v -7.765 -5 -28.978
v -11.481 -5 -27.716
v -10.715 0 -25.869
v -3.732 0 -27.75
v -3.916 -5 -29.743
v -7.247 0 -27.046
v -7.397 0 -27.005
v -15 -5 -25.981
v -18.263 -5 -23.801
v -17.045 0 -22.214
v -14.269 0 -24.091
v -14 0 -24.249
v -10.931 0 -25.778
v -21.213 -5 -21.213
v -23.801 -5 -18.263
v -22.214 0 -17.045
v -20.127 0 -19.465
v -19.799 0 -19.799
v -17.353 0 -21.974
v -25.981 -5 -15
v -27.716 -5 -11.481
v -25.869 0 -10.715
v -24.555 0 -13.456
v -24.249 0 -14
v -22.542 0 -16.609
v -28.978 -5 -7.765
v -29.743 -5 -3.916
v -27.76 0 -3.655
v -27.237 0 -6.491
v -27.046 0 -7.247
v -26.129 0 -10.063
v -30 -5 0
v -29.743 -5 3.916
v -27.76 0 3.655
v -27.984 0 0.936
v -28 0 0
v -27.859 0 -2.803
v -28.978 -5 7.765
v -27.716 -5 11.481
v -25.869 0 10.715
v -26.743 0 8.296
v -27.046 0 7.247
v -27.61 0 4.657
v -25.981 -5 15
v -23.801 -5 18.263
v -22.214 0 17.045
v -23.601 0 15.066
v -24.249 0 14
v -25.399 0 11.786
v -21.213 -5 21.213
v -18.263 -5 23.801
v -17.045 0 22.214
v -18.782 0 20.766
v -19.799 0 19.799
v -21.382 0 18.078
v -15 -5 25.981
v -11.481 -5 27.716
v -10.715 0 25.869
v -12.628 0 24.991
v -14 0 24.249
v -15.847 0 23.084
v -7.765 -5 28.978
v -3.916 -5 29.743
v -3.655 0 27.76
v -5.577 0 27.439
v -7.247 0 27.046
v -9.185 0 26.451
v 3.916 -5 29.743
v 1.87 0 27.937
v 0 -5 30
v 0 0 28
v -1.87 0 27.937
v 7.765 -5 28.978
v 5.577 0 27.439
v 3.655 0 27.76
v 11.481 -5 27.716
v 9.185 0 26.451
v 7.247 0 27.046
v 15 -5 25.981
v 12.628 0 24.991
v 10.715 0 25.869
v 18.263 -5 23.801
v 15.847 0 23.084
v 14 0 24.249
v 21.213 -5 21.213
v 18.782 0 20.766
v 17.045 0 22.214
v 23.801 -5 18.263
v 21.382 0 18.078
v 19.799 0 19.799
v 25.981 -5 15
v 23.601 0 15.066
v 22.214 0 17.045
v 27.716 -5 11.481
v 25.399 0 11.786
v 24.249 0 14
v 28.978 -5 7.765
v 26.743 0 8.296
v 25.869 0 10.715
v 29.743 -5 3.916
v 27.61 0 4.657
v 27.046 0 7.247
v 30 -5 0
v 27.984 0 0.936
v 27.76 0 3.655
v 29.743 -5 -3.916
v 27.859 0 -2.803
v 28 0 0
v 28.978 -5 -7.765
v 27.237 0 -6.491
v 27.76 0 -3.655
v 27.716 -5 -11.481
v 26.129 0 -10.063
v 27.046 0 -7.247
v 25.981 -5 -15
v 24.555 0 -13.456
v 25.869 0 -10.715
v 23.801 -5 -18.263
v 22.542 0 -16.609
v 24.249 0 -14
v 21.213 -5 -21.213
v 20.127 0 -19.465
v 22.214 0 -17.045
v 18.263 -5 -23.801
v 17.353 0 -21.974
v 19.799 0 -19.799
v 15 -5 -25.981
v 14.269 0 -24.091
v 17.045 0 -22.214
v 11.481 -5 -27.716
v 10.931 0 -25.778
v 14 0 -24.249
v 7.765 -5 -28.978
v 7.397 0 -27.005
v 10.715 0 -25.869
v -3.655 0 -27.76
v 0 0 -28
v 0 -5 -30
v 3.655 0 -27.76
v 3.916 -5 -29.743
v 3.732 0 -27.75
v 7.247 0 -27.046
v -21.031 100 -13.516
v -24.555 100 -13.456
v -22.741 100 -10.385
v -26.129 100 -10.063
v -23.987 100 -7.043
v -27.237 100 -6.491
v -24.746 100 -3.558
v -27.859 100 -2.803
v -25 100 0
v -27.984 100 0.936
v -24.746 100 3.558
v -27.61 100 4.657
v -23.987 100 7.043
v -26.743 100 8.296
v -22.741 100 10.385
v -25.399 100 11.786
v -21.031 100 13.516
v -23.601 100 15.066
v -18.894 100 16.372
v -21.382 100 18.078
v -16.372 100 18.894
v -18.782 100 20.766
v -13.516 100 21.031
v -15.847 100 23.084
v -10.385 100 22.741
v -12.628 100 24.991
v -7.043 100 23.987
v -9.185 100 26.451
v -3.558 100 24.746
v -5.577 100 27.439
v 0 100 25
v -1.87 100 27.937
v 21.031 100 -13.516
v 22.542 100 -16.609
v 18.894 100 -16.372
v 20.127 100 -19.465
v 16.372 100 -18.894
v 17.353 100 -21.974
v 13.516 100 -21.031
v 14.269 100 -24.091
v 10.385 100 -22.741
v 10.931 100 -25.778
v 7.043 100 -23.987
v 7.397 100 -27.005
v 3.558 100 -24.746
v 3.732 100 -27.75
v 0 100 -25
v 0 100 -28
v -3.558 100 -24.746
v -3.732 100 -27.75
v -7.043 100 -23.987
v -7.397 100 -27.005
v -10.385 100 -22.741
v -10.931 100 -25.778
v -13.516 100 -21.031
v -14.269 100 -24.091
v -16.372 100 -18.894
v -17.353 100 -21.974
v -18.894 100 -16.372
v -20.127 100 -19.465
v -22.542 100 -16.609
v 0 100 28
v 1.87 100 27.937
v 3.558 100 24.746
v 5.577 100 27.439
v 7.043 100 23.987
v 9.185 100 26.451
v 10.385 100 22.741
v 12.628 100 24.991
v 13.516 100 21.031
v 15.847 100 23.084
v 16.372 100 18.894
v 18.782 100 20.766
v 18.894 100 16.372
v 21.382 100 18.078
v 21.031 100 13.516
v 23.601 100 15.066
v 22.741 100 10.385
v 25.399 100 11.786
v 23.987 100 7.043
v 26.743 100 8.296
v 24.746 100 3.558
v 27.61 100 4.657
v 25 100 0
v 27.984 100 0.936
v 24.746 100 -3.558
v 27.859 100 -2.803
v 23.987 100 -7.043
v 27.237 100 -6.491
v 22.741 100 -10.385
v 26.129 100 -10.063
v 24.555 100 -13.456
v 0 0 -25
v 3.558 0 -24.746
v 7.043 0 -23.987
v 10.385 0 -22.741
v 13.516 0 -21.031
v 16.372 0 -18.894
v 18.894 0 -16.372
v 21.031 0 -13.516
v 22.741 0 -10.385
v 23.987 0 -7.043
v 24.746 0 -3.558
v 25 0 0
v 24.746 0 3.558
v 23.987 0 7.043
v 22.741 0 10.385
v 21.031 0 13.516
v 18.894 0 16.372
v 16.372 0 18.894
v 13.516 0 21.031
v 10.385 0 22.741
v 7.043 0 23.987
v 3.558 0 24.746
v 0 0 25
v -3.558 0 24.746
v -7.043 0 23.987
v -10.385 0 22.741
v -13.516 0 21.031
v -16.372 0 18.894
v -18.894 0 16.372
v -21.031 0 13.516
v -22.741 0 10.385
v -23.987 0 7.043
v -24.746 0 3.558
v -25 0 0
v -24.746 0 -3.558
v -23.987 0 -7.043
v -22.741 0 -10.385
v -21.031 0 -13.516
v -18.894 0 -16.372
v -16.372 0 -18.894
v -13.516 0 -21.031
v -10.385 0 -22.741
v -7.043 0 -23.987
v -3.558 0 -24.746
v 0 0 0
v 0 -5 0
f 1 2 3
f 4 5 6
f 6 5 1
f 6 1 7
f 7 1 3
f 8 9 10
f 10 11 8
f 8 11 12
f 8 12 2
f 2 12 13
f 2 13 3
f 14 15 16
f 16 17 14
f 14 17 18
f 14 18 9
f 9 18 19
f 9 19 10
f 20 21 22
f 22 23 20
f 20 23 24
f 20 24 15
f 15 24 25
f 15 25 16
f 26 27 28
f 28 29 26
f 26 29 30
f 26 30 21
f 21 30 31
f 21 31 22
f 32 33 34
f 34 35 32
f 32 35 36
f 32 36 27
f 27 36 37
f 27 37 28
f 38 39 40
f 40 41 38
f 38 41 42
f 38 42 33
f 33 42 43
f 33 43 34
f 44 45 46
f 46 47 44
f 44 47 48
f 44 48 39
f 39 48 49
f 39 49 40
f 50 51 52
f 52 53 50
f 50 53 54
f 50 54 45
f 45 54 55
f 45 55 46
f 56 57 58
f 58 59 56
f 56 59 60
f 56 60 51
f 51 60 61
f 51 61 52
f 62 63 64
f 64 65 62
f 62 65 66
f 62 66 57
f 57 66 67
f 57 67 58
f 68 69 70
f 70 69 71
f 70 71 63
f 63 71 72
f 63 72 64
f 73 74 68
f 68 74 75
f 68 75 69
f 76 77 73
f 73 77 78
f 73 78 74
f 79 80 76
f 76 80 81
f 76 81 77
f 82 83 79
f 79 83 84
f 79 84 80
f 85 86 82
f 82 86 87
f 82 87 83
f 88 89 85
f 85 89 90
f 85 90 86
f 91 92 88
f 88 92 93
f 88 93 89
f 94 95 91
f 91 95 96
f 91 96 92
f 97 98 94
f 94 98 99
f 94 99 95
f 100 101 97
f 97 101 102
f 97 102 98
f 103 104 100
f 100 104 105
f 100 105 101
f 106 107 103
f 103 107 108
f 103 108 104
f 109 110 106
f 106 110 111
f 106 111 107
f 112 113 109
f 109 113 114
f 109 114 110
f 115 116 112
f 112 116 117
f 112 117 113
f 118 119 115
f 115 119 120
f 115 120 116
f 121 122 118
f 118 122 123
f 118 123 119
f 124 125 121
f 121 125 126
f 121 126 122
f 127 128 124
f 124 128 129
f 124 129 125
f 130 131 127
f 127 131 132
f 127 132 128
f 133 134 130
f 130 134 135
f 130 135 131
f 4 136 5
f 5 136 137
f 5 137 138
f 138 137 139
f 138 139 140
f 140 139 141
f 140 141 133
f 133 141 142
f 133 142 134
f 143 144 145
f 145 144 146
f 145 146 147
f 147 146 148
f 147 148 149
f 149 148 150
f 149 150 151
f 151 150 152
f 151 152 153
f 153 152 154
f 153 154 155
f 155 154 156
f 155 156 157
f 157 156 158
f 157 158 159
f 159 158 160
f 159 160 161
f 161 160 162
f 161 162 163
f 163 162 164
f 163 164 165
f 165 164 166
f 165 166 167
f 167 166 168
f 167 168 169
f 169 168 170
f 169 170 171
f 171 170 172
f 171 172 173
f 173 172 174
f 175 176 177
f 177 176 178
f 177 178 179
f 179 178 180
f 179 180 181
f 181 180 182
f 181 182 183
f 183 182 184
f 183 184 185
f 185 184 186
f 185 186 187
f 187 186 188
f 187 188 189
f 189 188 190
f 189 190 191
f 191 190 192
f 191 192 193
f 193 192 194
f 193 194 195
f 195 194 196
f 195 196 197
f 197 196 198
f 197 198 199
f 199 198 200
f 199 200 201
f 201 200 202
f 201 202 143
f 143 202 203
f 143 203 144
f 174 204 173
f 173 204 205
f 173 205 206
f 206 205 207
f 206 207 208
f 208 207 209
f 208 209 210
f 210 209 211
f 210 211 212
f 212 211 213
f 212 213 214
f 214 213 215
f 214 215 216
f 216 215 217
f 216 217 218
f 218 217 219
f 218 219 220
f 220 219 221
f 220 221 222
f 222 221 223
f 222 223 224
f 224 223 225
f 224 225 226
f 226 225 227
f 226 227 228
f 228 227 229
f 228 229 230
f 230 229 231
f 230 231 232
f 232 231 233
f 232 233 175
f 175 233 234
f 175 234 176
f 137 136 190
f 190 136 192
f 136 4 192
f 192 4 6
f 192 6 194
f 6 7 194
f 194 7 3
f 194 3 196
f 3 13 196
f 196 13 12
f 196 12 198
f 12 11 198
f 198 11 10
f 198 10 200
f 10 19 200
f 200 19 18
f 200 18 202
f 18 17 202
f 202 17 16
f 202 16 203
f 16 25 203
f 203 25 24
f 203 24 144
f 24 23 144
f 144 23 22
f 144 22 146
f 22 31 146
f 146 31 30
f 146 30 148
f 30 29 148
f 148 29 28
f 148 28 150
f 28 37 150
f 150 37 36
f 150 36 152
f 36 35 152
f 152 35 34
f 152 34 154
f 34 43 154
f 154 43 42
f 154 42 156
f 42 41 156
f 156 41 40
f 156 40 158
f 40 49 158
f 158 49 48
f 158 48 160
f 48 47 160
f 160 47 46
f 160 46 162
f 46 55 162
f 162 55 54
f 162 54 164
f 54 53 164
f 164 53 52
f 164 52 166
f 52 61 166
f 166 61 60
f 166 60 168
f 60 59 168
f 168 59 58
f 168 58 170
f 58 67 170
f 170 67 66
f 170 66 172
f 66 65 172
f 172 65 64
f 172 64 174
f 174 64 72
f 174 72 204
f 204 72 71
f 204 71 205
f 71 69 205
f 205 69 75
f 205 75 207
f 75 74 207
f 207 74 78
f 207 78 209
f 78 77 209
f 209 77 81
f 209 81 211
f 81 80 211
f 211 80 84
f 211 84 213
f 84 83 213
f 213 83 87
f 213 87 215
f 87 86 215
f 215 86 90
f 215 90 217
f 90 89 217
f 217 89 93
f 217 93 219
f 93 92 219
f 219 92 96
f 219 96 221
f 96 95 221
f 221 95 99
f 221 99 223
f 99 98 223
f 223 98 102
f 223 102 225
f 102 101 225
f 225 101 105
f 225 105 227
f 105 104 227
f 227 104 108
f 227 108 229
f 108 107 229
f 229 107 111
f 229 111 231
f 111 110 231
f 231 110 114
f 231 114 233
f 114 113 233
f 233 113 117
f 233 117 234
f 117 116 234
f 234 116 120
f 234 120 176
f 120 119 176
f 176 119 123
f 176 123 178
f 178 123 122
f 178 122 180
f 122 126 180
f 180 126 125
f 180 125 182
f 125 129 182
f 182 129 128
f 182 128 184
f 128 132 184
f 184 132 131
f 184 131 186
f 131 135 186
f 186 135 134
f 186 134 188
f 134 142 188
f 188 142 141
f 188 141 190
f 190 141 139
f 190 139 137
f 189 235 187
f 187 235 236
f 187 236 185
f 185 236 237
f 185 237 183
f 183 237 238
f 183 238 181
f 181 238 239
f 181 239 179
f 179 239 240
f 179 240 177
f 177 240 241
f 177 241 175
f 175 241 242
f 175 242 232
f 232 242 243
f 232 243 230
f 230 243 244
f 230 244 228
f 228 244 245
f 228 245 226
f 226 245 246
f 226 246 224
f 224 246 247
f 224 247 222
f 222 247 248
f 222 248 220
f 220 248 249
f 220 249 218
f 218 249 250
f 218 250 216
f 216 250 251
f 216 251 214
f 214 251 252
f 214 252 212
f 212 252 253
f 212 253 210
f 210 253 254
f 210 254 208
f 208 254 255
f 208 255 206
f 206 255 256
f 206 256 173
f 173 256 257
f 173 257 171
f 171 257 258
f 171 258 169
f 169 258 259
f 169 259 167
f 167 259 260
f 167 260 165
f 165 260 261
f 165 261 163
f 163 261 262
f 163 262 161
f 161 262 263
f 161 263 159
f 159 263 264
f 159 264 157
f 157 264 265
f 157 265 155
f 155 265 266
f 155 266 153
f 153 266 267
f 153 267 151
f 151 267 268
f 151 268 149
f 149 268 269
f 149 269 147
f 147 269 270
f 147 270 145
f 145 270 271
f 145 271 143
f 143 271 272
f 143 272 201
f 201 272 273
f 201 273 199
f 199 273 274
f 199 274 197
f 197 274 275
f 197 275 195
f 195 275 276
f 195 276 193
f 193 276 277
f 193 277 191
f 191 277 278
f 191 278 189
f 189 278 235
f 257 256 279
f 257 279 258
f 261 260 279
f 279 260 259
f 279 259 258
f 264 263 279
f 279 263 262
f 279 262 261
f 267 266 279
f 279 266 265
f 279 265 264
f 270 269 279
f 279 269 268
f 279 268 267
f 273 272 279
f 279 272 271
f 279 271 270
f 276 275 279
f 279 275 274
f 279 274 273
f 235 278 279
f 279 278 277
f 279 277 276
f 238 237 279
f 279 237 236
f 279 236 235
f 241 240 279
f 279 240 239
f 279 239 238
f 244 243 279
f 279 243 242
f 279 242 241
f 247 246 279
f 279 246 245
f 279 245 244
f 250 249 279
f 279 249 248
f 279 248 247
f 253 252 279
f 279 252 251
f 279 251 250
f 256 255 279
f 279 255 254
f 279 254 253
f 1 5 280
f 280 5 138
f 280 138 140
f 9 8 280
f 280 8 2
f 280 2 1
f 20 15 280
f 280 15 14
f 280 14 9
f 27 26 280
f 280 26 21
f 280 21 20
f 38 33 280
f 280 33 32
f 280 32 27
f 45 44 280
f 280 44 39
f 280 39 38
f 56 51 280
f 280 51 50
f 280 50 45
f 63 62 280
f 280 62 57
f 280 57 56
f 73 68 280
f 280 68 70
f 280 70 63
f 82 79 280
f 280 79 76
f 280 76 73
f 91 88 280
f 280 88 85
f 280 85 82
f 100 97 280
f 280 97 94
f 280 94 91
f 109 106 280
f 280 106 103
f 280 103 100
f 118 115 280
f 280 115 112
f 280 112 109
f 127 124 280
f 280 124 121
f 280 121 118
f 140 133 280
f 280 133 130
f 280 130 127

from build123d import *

# Parameters (mm, degrees)
SKETCH_1_R      = 28
SKETCH_1_R_2    = 25
EXTRUDE_1_DEPTH = 100
SKETCH_2_R      = 30
EXTRUDE_2_DEPTH = 5


with BuildPart() as part:
    # 草图1 → 凸台-拉伸1 (new body)
    with BuildSketch(Plane(origin=(0, 0, 0), x_dir=(1, 0, 0), z_dir=(0, 1, 0))):
        with Locations(Location((0, 0, 0), (0, 0, 270))):
            Circle(SKETCH_1_R)
        with Locations(Location((0, 0, 0), (0, 0, 270))):
            Circle(SKETCH_1_R_2, mode=Mode.SUBTRACT)
    extrude(amount=EXTRUDE_1_DEPTH)

    # 草图2 → 凸台-拉伸2 (add)
    with BuildSketch(Plane.XZ):
        with Locations(Location((0, 0, 0), (0, 0, 270))):
            Circle(SKETCH_2_R)
    extrude(amount=EXTRUDE_2_DEPTH)

    # 倒角3: read off the stored shape, not the designer's step
    # 倒角3 outline → 倒角3 (revolve, cut)
    with BuildSketch(Plane.XY):
        Polygon((30, 0), (28, 0), (30, -5), align=None)
    revolve(axis=Axis((0, 0, 0), (0, 1, 0)), mode=Mode.SUBTRACT)


solid = part.part
